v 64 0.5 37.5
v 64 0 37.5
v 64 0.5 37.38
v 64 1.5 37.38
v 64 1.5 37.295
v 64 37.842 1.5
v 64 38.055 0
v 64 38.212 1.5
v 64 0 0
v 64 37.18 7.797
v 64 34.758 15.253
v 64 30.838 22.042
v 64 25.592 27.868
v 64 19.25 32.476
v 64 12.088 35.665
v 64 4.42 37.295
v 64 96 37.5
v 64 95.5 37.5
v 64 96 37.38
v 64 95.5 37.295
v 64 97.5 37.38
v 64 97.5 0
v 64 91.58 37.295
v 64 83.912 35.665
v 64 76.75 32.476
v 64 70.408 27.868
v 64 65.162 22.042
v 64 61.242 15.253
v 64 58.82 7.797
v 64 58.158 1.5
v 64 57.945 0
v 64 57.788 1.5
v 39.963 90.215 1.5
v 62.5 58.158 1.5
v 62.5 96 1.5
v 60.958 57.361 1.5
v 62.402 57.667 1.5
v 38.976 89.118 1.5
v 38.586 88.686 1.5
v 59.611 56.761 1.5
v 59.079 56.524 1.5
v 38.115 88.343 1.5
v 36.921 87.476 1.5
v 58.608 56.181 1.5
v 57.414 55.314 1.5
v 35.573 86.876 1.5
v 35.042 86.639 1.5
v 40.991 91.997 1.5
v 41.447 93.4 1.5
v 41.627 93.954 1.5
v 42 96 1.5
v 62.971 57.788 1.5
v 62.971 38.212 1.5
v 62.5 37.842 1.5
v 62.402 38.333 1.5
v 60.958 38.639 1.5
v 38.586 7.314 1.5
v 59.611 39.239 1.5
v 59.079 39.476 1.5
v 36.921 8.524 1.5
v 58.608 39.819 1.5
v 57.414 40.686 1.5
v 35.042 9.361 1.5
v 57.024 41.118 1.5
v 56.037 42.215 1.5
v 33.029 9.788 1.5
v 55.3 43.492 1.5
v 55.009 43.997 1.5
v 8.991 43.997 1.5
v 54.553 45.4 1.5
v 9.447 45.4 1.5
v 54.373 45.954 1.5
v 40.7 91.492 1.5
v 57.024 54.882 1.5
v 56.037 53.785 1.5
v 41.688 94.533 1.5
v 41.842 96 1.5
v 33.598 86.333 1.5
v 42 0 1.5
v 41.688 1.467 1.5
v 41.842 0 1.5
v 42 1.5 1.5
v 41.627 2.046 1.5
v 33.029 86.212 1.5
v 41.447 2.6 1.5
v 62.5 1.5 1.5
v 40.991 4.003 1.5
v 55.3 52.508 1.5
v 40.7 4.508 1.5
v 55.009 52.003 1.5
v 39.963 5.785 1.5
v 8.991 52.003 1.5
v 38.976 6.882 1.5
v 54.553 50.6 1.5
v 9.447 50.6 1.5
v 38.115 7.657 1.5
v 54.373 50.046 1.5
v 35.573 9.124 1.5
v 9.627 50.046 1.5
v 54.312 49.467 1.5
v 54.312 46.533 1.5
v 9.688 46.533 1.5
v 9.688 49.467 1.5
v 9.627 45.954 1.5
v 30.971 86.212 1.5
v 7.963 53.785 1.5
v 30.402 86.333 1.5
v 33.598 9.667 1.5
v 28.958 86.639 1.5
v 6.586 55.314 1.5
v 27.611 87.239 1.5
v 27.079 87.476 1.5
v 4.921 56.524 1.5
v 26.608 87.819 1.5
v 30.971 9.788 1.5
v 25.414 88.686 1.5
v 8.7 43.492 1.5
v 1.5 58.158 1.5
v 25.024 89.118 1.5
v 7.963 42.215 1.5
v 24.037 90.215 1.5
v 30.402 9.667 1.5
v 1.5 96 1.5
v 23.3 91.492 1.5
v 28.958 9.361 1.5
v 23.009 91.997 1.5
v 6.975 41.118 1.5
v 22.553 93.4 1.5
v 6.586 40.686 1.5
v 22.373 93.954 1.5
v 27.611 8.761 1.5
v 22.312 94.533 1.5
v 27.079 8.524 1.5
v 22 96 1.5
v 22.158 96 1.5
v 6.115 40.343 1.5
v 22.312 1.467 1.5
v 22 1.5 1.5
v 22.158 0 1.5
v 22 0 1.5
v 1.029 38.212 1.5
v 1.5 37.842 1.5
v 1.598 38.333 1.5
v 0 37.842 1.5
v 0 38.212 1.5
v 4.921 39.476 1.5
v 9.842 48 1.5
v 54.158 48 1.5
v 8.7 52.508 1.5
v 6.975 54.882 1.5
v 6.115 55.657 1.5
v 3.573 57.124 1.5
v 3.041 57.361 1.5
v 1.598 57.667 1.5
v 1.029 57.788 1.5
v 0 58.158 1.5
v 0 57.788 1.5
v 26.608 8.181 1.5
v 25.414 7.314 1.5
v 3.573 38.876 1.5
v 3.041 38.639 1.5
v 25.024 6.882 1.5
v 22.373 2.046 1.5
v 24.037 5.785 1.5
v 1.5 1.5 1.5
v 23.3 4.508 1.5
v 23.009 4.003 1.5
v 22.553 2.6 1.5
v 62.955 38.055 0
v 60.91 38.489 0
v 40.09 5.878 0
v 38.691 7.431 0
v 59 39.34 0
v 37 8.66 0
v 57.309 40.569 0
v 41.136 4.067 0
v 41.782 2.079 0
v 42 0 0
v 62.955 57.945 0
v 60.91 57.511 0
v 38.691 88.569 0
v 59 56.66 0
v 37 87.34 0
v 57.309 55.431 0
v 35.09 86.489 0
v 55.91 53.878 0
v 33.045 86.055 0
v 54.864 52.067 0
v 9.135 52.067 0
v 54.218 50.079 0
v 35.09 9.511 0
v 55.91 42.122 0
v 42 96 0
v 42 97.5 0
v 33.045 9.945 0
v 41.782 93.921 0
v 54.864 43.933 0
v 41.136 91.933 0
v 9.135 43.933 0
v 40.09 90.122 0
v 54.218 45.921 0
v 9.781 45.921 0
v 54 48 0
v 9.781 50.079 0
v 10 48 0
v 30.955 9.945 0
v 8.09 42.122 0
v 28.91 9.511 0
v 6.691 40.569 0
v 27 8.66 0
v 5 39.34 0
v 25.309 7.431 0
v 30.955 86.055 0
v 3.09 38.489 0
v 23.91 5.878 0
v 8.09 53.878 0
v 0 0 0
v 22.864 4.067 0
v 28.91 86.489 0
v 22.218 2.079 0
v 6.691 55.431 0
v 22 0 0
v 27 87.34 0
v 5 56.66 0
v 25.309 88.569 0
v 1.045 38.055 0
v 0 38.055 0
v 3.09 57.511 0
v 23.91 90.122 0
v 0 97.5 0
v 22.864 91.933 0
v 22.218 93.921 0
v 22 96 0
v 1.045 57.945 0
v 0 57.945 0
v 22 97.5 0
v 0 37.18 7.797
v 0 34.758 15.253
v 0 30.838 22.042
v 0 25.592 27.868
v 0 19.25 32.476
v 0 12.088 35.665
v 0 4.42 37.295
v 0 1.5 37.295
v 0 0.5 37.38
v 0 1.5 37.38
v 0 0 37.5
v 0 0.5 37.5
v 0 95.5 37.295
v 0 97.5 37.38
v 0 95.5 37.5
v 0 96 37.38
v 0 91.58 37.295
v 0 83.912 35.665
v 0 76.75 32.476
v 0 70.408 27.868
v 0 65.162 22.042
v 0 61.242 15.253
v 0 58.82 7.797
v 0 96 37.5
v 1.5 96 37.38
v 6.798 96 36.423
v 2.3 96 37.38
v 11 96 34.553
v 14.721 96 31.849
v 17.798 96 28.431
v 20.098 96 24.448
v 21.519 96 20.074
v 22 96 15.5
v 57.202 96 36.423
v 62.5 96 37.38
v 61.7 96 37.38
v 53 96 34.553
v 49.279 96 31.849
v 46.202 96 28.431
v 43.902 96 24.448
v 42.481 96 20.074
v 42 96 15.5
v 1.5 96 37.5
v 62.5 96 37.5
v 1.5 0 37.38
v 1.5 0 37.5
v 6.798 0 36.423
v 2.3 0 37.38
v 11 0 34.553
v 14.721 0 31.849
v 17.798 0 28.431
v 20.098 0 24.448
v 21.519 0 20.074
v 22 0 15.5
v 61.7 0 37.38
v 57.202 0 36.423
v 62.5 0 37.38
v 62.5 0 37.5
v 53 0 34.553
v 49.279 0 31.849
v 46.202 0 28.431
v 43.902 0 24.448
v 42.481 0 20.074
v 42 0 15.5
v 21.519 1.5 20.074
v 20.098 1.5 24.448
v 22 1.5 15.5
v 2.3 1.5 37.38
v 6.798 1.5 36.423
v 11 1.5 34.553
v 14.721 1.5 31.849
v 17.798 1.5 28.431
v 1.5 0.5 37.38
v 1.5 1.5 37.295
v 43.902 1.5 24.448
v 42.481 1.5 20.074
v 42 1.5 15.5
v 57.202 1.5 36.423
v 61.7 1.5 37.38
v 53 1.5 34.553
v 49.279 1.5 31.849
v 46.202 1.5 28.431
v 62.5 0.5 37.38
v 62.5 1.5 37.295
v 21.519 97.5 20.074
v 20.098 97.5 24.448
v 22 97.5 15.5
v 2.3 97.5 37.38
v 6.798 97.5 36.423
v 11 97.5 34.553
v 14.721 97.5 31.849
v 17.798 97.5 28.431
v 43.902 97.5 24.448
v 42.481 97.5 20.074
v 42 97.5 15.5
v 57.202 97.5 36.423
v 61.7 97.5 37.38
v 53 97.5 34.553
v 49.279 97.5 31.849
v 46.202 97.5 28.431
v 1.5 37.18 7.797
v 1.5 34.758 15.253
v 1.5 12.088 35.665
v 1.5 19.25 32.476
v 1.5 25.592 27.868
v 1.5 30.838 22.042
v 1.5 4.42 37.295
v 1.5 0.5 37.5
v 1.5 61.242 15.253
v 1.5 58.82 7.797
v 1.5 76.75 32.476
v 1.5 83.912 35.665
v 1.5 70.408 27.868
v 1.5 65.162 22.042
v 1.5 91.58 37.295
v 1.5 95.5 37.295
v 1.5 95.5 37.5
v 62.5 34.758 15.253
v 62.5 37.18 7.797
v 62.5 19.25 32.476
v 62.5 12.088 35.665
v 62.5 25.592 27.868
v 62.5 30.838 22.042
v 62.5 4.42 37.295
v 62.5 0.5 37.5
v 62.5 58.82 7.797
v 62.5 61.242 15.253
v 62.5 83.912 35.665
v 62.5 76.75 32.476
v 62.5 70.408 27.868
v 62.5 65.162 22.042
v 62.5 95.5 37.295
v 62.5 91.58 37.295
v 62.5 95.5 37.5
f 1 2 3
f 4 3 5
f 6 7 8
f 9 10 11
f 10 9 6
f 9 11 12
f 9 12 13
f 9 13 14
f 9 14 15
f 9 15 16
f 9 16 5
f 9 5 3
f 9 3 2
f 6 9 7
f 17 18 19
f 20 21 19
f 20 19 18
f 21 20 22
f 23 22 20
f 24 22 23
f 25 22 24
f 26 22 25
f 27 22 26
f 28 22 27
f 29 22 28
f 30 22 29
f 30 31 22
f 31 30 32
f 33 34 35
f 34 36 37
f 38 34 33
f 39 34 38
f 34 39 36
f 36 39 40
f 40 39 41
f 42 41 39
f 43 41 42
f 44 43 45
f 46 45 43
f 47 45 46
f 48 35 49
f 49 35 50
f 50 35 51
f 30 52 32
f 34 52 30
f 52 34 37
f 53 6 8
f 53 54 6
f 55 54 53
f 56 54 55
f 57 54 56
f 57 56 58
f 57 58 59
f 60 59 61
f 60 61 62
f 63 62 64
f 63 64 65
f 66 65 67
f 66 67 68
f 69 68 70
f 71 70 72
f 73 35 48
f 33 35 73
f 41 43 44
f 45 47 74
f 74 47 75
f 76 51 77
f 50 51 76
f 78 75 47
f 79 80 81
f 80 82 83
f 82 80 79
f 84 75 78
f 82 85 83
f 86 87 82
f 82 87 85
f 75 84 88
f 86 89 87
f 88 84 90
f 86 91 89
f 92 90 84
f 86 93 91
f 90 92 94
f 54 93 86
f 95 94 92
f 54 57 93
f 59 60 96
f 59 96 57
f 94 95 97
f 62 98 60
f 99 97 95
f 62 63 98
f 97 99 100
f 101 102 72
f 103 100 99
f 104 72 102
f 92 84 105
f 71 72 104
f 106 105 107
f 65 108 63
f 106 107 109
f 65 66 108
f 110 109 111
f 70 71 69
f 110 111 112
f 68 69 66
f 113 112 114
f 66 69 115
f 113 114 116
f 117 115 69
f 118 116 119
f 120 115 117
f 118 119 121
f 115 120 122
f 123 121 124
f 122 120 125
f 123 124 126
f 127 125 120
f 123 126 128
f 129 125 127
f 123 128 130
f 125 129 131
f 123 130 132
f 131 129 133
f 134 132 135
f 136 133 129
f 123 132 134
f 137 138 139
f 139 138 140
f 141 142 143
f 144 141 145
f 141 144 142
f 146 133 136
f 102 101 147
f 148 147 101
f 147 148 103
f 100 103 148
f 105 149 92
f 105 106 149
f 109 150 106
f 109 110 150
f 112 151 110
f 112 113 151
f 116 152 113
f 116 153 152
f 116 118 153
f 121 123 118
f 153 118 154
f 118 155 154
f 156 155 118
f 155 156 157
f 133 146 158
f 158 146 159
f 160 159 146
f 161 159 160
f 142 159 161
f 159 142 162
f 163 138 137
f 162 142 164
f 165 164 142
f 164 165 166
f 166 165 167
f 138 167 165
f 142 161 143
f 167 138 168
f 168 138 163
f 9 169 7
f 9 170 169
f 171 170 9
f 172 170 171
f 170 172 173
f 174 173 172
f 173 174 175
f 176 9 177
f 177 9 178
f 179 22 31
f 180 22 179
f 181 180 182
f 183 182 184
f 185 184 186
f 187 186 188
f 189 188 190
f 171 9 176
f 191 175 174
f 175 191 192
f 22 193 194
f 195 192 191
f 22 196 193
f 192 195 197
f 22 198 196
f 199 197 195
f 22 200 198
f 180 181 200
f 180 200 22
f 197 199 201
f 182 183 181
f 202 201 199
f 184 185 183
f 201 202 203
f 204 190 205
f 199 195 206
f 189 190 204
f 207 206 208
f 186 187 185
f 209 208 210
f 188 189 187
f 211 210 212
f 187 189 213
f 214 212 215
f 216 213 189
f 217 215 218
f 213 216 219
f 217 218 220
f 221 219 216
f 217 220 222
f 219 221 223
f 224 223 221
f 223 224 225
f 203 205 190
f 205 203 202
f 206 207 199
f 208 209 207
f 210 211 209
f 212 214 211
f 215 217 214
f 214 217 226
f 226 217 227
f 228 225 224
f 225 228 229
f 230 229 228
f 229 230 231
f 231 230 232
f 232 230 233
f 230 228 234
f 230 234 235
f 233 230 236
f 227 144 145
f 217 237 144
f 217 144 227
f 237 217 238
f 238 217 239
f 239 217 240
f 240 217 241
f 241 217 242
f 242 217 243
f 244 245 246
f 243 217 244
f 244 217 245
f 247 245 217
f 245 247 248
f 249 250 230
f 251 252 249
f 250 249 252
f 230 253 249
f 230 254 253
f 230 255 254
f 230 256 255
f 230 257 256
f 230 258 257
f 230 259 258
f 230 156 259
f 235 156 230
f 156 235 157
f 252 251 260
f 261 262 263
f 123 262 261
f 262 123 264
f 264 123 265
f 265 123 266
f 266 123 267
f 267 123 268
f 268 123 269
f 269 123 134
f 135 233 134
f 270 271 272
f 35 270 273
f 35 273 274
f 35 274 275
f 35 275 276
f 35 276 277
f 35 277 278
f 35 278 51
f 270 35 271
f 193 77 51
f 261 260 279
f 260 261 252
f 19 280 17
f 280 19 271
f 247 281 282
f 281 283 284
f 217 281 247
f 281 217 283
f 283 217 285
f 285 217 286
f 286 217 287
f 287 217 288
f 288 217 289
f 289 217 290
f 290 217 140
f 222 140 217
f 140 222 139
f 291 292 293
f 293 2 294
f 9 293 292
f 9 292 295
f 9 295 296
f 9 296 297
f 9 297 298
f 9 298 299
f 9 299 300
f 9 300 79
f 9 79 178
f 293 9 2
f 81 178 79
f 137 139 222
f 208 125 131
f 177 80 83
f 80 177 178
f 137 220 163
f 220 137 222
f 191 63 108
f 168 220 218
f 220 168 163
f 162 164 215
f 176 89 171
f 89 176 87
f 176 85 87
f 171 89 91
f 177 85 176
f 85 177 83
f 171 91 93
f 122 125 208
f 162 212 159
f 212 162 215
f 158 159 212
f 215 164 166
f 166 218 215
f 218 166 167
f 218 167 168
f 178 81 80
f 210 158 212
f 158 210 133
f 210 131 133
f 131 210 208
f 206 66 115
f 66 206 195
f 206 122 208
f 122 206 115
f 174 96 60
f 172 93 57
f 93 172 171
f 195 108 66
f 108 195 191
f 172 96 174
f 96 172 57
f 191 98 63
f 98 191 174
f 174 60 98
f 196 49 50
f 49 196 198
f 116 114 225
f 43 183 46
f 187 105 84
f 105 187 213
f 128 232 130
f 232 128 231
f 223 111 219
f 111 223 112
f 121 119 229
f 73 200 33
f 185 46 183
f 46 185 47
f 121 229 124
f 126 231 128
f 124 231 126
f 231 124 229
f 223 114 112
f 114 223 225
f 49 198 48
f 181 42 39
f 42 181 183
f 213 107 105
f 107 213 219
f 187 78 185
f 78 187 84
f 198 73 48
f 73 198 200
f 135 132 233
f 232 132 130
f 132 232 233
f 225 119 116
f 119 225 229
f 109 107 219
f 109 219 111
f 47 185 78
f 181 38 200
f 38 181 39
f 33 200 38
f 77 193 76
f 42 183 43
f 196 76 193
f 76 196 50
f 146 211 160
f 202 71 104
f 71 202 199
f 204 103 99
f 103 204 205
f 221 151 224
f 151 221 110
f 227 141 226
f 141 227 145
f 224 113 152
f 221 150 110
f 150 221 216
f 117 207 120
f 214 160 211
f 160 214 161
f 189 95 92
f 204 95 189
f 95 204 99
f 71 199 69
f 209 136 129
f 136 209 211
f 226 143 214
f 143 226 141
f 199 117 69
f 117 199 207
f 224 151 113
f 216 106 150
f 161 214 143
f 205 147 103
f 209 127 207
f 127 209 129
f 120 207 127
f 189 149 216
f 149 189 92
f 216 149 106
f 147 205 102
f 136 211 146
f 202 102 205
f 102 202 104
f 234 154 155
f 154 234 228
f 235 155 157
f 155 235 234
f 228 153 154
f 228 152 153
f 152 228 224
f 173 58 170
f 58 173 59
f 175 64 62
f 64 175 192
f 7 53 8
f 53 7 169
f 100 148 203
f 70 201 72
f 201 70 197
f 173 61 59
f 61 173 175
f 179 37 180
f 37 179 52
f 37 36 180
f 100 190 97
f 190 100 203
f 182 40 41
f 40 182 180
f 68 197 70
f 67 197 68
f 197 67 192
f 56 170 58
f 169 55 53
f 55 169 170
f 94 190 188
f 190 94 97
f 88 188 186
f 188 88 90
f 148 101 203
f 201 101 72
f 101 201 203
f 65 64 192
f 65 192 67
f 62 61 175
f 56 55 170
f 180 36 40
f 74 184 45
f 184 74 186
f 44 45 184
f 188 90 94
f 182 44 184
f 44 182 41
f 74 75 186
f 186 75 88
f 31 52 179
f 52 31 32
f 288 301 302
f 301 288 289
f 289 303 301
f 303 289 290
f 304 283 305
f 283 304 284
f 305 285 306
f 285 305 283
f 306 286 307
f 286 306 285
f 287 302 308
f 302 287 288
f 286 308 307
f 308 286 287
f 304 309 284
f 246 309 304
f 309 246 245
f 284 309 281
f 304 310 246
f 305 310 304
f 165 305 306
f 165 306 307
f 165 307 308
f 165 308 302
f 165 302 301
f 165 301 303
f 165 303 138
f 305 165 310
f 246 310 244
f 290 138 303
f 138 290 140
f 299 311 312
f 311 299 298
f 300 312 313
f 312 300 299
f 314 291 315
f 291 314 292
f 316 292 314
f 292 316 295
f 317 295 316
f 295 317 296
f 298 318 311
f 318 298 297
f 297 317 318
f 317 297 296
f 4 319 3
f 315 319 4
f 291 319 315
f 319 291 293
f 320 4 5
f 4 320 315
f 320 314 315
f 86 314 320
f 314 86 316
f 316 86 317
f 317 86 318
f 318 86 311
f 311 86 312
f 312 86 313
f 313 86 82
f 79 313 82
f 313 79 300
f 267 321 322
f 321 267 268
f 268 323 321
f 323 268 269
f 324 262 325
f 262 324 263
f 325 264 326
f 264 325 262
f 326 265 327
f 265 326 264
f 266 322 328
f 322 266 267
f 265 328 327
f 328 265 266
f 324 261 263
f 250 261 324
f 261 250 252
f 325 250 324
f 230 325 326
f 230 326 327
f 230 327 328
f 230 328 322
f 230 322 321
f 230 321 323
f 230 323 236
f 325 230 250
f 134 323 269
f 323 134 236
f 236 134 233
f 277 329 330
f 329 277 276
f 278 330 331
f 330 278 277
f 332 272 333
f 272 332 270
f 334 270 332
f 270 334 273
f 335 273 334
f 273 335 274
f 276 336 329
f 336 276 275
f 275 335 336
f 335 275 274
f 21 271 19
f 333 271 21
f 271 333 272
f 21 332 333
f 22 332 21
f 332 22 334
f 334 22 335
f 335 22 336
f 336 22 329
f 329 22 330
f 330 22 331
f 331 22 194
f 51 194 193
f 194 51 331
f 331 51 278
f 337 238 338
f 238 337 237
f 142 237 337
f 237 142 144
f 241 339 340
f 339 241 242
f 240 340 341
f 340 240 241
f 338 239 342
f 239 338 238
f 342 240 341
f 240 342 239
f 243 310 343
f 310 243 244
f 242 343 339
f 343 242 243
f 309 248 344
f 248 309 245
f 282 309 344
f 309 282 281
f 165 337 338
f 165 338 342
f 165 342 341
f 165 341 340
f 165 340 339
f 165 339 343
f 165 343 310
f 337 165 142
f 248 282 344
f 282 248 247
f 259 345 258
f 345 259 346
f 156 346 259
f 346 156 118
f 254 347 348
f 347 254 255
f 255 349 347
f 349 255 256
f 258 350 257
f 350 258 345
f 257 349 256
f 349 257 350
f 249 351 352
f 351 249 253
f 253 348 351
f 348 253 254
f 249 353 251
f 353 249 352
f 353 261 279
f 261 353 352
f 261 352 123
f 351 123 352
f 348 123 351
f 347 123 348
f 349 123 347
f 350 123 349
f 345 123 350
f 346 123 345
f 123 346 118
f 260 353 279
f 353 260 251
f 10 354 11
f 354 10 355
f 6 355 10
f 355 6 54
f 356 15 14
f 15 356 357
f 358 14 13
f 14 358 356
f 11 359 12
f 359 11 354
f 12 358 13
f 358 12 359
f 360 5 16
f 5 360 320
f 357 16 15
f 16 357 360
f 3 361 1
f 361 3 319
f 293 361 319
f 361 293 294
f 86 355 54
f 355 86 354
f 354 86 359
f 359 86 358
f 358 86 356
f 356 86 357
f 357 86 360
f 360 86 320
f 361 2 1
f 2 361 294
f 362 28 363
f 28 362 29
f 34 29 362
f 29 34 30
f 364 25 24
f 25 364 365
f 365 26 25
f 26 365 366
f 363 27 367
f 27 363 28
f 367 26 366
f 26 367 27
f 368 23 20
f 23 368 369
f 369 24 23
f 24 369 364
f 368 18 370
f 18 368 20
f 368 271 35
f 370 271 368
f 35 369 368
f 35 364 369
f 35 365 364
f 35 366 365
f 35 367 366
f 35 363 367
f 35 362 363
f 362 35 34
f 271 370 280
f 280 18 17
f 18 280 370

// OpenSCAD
// file: ../lib/utils.scad
function Sum_Numbers(numbers = [ 1, 2, 3 ], i = 0) =
    i == len(numbers) ? 0 : numbers[i] + Sum_Numbers(numbers, i + 1);

function Sum(elements = [ [ 1, 2, 3 ], 5 ]) =
    let(max_element_length = max(
            [for (element = elements) is_list(element) ? len(element)
                                                       : 0])) max_element_length
        ? [for (i = [0:max_element_length - 1]) Sum_Numbers(
              [for (element = elements) is_list(element)
                      ? (element[i] ? element[i] : 0)
                      : element])]
        : Sum_Numbers(elements);

function Multiply(list = [ 1, 2, 3 ], number = 3) =
    [for (element = list) element * number];

function Minus(list_or_number = [ 1, 2, 3 ]) =
    is_list(list_or_number)
        ? [for (list_element = list_or_number) Minus(list_element)]
        : -list_or_number;

module Open_Box(size = [ 1, 1, 1 ], x = 1, y = 1, t = wall) {
  cube([ size.x, size.y, t ]);
  dx = (size.x - t) / x;
  dy = (size.y - t) / y;
  for (i = [0:x]) {
    translate([ i * dx, 0, 0 ]) { cube([ t, size.y, size.z ]); }
  }
  for (i = [0:y]) {
    translate([ 0, i * dy, 0 ]) { cube([ size.x, t, size.z ]); }
  }
}

module Box_Wall_Part(size = [ 1, 1, 1 ], rounded = false) {
  if (rounded) {
    cube_height_or_width = size.z - size.x;
    cube([
      cube_height_or_width < 0 ? -cube_height_or_width : size.x,
      size.y,
      cube_height_or_width > 0 ? cube_height_or_width : size.z
    ]);

    cylinder_radius = cube_height_or_width > 0 ? size.x : size.z;

    translate([
      cube_height_or_width < 0 ? -cube_height_or_width : 0,
      0,
      cube_height_or_width > 0 ? cube_height_or_width : 0
    ]) {
      intersection() {
        rotate([ 90, 0, 0 ]) cylinder(
            h = size.x,
            r1 = cylinder_radius,
            r2 = cylinder_radius,
            center = true);
        cube([ size.x, size.y, size.z ]);
      }
    }
  } else {
    cube(size);
  }
}

module Box_Wall(size = [ 1, 1, 1 ], hole_diameter = 0, rounded = 0) {
  module _Box_Wall_Part() {
    Box_Wall_Part(
        size = [ (size.x - hole_diameter) / 2, size.y, size.z ],
        rounded = rounded);
  }
  if (hole_diameter > 0) {
    _Box_Wall_Part();
    translate([ size.x, 0, 0 ]) mirror([ 1, 0, 0 ]) _Box_Wall_Part();
  } else {
    cube(size);
  }
}

module
Box(size = [ 1, 1, 1 ],
    wall = wall,
    bottom_hole_diameter = 0,
    top_hole_diameter = 0,
    left_hole_diameter = 0,
    right_hole_diameter = 0,
    rounded = false) {
  base = [ size.x, size.y, wall ];

  difference() {
    cube(base);
    translate([ size.x / 2, 0, 0 ]) { sphere(d = bottom_hole_diameter); }
    translate([ size.x / 2, size.y, 0 ]) { sphere(d = top_hole_diameter); }
    translate([ 0, size.y / 2, 0 ]) { sphere(d = left_hole_diameter); }
    translate([ size.x, size.y / 2, 0 ]) { sphere(d = right_hole_diameter); }
  }

  Box_Wall(
      size = [ size.x, wall, size.z ],
      hole_diameter = bottom_hole_diameter,
      rounded = rounded);

  translate([ 0, size.y, 0 ]) {
    Box_Wall(
        size = [ size.x, wall, size.z ],
        hole_diameter = top_hole_diameter,
        rounded = rounded);
  }

  translate([ wall, 0, 0 ]) {
    rotate(a = 90) {
      Box_Wall(
          size = [ size.y, wall, size.z ],
          hole_diameter = left_hole_diameter,
          rounded = rounded);
    }
  }

  translate([ size.x, 0, 0 ]) {
    rotate(a = 90) {
      Box_Wall(
          size = [ size.y, wall, size.z ],
          hole_diameter = right_hole_diameter,
          rounded = rounded);
    }
  }
}

module Multi_Box(
    size = [ 1, 1, 1 ],
    wall = wall,
    bottom_hole_diameter = 0,
    top_hole_diameter = 0,
    left_hole_diameter = 0,
    right_hole_diameter = 0,
    rounded = false,
    x = 2,
    y = 1) {
  for (i = [0:x - 1]) {
    for (j = [0:y - 1]) {
      translate([ i * (size.x - wall), j * (size.y - wall), 0 ]) {
        Box(size = size,
            wall = wall,
            bottom_hole_diameter = bottom_hole_diameter,
            top_hole_diameter = top_hole_diameter,
            left_hole_diameter = left_hole_diameter,
            right_hole_diameter = right_hole_diameter,
            rounded = rounded);
      }
    }
  }
}
// main file
include <../lib/utils.scad>

render_gap = 5;

box = [ 286, 286, 111 ];
box_padding = [ 2, 2, 3 ];
space = Sum([ box, Minus(box_padding) ]);

padding = [ 1, 1, 2 ];
wall = 1.5;
walls = [ 2 * wall, 2 * wall, wall ];

big_card = [ 60, 92 ];
function
    Big_Cards(z = 10) = Sum([ [ big_card.x, big_card.y, z ], padding, walls ]);

empire_base_mission_cards = Big_Cards(10);
empire_battle_cards = Big_Cards(11);
empire_expansion_mission_cards = Big_Cards(10);
empire_leader_mission_cards = Big_Cards(10);
empire_mission_cards = Big_Cards(34);
empire_project_cards = Big_Cards(10);
empire_starting_mission_cards = Big_Cards(4);
rebel_base_mission_cards = Big_Cards(10);
rebel_battle_cards = Big_Cards(11);
rebel_expansion_mission_cards = Big_Cards(10);
rebel_leader_mission_cards = Big_Cards(10);
rebel_stage_1_objective_cards = Big_Cards(8);
rebel_stage_2_objective_cards = Big_Cards(7);
rebel_stage_3_objective_cards = Big_Cards(6);
rebel_starting_mission_cards = Big_Cards(4);

small_card = [ 44, 66 ];
function Small_Cards(z = 10) =
    Sum([ [ small_card.x, small_card.y, z ], padding, walls ]);

empire_action_cards = Small_Cards(19);
probe_cards = Small_Cards(25);
rebel_action_cards = Small_Cards(11);
rebel_starting_action_cards = Small_Cards(6);

function Tokens(size = [ 1, 2, 3 ]) = Sum([ size, padding, walls ]);

planets = Tokens([ 80, 80, 7 ]);
sabotages = Tokens([ 34, 23, 19 ]);
damages = Tokens([ 54, 26, 26 ]);
double_damages = Tokens([ 48, 26, 18 ]);
rings = Tokens([ 41, 41, 21 ]);
rebel_tokens = Tokens([ 27, 28, 24 ]);
empire_tokens = Tokens([ 61, 28, 24 ]);
targets = Tokens([ 31, 26, 12 ]);
round_tokens = Tokens([ 20, 20, 5 ]);
leader = [ 20, 32, 50 ];
leaders = Tokens([ 17 * leader.x, leader.y, leader.z ]);
expanded_leaders = [ leaders.x, leaders.y, space.z / 2 ];

rebel_big_cards = [
  rebel_stage_1_objective_cards,
  rebel_stage_2_objective_cards,
  rebel_stage_3_objective_cards,
  rebel_base_mission_cards,
  rebel_battle_cards,
  rebel_expansion_mission_cards,
  rebel_leader_mission_cards,
  rebel_starting_mission_cards,
];

empire_big_cards = [
  empire_base_mission_cards,
  empire_battle_cards,
  empire_expansion_mission_cards,
  empire_leader_mission_cards,
  empire_starting_mission_cards,
];

small_cards = [
  empire_action_cards,
  probe_cards,
  rebel_action_cards,
  rebel_starting_action_cards,
];

tokens = [
  planets,
  sabotages,
  damages,
  double_damages,
  rings,
  // rebel_tokens,
  //  empire_tokens,
  // targets,
  round_tokens,
  //  leaders,
  // leaders
];

module Cards_Box(size) {
  Box(size = size,
      wall = wall,
      bottom_hole_diameter = 20,
      top_hole_diameter = 20,
      left_hole_diameter = 20,
      right_hole_diameter = 20,
      rounded = true);
}

module Tokens_Box(size) { Box(size = size, wall = wall); }

% cube(space);

! Cards_Box(empire_mission_cards);

Tokens_Box(expanded_leaders);
translate([ 0, 0, expanded_leaders.z + render_gap ])
    Tokens_Box(expanded_leaders);

translate([ leaders.x + render_gap, 0, 0 ]) {
  for (i = [0:len(rebel_big_cards) - 1]) {
    elements = rebel_big_cards;
    element = elements[i];
    translate([
      0,
      0,
      i > 0 ? Sum_Numbers([for (j = [1:i]) elements[j - 1].z + render_gap]) : 0
    ]) {
      Cards_Box(element);
    }
  }

  translate([ rebel_big_cards[0].x + render_gap, 0, 0 ]) {
    for (i = [0:len(empire_big_cards) - 1]) {
      elements = empire_big_cards;
      element = elements[i];
      translate([
        0,
        0,
        i > 0 ? Sum_Numbers([for (j = [1:i]) elements[j - 1].z + render_gap])
              : 0
      ]) {
        Cards_Box(element);
      }
    }
    translate([
      rebel_big_cards[0].x + render_gap,
      0,
      Sum([for (x = empire_big_cards) x.z])
    ]) {
      for (i = [0:len(small_cards) - 3]) {
        elements = small_cards;
        element = elements[i];
        translate([
          0,
          0,
          i > 0 ? Sum_Numbers([for (j = [1:i]) elements[j - 1].z + render_gap])
                : 0
        ]) {
          rotate([ 0, 0, 90 ]) Cards_Box(element);
        }
      }
    }
  }

  translate([ 2 * rebel_big_cards[0].x + render_gap, small_cards[0].x, 0 ]) {
    Tokens_Box(empire_tokens);
    translate([ 0, 0, empire_tokens.z + render_gap ]) {
      Tokens_Box(rebel_tokens);
      translate([ rebel_tokens.x + render_gap, 0, 0 ]) Tokens_Box(targets);
    }
  }
}

translate([ 300, 0, 0 ]) {
  for (i = [0:len(tokens) - 1]) {
    elements = tokens;
    element = elements[i];
    translate([
      i > 0 ? Sum_Numbers([for (j = [1:i]) elements[j - 1].x + render_gap]) : 0,
      0,
      0,
    ]) {
      Tokens_Box(element);
    }
  }
}
